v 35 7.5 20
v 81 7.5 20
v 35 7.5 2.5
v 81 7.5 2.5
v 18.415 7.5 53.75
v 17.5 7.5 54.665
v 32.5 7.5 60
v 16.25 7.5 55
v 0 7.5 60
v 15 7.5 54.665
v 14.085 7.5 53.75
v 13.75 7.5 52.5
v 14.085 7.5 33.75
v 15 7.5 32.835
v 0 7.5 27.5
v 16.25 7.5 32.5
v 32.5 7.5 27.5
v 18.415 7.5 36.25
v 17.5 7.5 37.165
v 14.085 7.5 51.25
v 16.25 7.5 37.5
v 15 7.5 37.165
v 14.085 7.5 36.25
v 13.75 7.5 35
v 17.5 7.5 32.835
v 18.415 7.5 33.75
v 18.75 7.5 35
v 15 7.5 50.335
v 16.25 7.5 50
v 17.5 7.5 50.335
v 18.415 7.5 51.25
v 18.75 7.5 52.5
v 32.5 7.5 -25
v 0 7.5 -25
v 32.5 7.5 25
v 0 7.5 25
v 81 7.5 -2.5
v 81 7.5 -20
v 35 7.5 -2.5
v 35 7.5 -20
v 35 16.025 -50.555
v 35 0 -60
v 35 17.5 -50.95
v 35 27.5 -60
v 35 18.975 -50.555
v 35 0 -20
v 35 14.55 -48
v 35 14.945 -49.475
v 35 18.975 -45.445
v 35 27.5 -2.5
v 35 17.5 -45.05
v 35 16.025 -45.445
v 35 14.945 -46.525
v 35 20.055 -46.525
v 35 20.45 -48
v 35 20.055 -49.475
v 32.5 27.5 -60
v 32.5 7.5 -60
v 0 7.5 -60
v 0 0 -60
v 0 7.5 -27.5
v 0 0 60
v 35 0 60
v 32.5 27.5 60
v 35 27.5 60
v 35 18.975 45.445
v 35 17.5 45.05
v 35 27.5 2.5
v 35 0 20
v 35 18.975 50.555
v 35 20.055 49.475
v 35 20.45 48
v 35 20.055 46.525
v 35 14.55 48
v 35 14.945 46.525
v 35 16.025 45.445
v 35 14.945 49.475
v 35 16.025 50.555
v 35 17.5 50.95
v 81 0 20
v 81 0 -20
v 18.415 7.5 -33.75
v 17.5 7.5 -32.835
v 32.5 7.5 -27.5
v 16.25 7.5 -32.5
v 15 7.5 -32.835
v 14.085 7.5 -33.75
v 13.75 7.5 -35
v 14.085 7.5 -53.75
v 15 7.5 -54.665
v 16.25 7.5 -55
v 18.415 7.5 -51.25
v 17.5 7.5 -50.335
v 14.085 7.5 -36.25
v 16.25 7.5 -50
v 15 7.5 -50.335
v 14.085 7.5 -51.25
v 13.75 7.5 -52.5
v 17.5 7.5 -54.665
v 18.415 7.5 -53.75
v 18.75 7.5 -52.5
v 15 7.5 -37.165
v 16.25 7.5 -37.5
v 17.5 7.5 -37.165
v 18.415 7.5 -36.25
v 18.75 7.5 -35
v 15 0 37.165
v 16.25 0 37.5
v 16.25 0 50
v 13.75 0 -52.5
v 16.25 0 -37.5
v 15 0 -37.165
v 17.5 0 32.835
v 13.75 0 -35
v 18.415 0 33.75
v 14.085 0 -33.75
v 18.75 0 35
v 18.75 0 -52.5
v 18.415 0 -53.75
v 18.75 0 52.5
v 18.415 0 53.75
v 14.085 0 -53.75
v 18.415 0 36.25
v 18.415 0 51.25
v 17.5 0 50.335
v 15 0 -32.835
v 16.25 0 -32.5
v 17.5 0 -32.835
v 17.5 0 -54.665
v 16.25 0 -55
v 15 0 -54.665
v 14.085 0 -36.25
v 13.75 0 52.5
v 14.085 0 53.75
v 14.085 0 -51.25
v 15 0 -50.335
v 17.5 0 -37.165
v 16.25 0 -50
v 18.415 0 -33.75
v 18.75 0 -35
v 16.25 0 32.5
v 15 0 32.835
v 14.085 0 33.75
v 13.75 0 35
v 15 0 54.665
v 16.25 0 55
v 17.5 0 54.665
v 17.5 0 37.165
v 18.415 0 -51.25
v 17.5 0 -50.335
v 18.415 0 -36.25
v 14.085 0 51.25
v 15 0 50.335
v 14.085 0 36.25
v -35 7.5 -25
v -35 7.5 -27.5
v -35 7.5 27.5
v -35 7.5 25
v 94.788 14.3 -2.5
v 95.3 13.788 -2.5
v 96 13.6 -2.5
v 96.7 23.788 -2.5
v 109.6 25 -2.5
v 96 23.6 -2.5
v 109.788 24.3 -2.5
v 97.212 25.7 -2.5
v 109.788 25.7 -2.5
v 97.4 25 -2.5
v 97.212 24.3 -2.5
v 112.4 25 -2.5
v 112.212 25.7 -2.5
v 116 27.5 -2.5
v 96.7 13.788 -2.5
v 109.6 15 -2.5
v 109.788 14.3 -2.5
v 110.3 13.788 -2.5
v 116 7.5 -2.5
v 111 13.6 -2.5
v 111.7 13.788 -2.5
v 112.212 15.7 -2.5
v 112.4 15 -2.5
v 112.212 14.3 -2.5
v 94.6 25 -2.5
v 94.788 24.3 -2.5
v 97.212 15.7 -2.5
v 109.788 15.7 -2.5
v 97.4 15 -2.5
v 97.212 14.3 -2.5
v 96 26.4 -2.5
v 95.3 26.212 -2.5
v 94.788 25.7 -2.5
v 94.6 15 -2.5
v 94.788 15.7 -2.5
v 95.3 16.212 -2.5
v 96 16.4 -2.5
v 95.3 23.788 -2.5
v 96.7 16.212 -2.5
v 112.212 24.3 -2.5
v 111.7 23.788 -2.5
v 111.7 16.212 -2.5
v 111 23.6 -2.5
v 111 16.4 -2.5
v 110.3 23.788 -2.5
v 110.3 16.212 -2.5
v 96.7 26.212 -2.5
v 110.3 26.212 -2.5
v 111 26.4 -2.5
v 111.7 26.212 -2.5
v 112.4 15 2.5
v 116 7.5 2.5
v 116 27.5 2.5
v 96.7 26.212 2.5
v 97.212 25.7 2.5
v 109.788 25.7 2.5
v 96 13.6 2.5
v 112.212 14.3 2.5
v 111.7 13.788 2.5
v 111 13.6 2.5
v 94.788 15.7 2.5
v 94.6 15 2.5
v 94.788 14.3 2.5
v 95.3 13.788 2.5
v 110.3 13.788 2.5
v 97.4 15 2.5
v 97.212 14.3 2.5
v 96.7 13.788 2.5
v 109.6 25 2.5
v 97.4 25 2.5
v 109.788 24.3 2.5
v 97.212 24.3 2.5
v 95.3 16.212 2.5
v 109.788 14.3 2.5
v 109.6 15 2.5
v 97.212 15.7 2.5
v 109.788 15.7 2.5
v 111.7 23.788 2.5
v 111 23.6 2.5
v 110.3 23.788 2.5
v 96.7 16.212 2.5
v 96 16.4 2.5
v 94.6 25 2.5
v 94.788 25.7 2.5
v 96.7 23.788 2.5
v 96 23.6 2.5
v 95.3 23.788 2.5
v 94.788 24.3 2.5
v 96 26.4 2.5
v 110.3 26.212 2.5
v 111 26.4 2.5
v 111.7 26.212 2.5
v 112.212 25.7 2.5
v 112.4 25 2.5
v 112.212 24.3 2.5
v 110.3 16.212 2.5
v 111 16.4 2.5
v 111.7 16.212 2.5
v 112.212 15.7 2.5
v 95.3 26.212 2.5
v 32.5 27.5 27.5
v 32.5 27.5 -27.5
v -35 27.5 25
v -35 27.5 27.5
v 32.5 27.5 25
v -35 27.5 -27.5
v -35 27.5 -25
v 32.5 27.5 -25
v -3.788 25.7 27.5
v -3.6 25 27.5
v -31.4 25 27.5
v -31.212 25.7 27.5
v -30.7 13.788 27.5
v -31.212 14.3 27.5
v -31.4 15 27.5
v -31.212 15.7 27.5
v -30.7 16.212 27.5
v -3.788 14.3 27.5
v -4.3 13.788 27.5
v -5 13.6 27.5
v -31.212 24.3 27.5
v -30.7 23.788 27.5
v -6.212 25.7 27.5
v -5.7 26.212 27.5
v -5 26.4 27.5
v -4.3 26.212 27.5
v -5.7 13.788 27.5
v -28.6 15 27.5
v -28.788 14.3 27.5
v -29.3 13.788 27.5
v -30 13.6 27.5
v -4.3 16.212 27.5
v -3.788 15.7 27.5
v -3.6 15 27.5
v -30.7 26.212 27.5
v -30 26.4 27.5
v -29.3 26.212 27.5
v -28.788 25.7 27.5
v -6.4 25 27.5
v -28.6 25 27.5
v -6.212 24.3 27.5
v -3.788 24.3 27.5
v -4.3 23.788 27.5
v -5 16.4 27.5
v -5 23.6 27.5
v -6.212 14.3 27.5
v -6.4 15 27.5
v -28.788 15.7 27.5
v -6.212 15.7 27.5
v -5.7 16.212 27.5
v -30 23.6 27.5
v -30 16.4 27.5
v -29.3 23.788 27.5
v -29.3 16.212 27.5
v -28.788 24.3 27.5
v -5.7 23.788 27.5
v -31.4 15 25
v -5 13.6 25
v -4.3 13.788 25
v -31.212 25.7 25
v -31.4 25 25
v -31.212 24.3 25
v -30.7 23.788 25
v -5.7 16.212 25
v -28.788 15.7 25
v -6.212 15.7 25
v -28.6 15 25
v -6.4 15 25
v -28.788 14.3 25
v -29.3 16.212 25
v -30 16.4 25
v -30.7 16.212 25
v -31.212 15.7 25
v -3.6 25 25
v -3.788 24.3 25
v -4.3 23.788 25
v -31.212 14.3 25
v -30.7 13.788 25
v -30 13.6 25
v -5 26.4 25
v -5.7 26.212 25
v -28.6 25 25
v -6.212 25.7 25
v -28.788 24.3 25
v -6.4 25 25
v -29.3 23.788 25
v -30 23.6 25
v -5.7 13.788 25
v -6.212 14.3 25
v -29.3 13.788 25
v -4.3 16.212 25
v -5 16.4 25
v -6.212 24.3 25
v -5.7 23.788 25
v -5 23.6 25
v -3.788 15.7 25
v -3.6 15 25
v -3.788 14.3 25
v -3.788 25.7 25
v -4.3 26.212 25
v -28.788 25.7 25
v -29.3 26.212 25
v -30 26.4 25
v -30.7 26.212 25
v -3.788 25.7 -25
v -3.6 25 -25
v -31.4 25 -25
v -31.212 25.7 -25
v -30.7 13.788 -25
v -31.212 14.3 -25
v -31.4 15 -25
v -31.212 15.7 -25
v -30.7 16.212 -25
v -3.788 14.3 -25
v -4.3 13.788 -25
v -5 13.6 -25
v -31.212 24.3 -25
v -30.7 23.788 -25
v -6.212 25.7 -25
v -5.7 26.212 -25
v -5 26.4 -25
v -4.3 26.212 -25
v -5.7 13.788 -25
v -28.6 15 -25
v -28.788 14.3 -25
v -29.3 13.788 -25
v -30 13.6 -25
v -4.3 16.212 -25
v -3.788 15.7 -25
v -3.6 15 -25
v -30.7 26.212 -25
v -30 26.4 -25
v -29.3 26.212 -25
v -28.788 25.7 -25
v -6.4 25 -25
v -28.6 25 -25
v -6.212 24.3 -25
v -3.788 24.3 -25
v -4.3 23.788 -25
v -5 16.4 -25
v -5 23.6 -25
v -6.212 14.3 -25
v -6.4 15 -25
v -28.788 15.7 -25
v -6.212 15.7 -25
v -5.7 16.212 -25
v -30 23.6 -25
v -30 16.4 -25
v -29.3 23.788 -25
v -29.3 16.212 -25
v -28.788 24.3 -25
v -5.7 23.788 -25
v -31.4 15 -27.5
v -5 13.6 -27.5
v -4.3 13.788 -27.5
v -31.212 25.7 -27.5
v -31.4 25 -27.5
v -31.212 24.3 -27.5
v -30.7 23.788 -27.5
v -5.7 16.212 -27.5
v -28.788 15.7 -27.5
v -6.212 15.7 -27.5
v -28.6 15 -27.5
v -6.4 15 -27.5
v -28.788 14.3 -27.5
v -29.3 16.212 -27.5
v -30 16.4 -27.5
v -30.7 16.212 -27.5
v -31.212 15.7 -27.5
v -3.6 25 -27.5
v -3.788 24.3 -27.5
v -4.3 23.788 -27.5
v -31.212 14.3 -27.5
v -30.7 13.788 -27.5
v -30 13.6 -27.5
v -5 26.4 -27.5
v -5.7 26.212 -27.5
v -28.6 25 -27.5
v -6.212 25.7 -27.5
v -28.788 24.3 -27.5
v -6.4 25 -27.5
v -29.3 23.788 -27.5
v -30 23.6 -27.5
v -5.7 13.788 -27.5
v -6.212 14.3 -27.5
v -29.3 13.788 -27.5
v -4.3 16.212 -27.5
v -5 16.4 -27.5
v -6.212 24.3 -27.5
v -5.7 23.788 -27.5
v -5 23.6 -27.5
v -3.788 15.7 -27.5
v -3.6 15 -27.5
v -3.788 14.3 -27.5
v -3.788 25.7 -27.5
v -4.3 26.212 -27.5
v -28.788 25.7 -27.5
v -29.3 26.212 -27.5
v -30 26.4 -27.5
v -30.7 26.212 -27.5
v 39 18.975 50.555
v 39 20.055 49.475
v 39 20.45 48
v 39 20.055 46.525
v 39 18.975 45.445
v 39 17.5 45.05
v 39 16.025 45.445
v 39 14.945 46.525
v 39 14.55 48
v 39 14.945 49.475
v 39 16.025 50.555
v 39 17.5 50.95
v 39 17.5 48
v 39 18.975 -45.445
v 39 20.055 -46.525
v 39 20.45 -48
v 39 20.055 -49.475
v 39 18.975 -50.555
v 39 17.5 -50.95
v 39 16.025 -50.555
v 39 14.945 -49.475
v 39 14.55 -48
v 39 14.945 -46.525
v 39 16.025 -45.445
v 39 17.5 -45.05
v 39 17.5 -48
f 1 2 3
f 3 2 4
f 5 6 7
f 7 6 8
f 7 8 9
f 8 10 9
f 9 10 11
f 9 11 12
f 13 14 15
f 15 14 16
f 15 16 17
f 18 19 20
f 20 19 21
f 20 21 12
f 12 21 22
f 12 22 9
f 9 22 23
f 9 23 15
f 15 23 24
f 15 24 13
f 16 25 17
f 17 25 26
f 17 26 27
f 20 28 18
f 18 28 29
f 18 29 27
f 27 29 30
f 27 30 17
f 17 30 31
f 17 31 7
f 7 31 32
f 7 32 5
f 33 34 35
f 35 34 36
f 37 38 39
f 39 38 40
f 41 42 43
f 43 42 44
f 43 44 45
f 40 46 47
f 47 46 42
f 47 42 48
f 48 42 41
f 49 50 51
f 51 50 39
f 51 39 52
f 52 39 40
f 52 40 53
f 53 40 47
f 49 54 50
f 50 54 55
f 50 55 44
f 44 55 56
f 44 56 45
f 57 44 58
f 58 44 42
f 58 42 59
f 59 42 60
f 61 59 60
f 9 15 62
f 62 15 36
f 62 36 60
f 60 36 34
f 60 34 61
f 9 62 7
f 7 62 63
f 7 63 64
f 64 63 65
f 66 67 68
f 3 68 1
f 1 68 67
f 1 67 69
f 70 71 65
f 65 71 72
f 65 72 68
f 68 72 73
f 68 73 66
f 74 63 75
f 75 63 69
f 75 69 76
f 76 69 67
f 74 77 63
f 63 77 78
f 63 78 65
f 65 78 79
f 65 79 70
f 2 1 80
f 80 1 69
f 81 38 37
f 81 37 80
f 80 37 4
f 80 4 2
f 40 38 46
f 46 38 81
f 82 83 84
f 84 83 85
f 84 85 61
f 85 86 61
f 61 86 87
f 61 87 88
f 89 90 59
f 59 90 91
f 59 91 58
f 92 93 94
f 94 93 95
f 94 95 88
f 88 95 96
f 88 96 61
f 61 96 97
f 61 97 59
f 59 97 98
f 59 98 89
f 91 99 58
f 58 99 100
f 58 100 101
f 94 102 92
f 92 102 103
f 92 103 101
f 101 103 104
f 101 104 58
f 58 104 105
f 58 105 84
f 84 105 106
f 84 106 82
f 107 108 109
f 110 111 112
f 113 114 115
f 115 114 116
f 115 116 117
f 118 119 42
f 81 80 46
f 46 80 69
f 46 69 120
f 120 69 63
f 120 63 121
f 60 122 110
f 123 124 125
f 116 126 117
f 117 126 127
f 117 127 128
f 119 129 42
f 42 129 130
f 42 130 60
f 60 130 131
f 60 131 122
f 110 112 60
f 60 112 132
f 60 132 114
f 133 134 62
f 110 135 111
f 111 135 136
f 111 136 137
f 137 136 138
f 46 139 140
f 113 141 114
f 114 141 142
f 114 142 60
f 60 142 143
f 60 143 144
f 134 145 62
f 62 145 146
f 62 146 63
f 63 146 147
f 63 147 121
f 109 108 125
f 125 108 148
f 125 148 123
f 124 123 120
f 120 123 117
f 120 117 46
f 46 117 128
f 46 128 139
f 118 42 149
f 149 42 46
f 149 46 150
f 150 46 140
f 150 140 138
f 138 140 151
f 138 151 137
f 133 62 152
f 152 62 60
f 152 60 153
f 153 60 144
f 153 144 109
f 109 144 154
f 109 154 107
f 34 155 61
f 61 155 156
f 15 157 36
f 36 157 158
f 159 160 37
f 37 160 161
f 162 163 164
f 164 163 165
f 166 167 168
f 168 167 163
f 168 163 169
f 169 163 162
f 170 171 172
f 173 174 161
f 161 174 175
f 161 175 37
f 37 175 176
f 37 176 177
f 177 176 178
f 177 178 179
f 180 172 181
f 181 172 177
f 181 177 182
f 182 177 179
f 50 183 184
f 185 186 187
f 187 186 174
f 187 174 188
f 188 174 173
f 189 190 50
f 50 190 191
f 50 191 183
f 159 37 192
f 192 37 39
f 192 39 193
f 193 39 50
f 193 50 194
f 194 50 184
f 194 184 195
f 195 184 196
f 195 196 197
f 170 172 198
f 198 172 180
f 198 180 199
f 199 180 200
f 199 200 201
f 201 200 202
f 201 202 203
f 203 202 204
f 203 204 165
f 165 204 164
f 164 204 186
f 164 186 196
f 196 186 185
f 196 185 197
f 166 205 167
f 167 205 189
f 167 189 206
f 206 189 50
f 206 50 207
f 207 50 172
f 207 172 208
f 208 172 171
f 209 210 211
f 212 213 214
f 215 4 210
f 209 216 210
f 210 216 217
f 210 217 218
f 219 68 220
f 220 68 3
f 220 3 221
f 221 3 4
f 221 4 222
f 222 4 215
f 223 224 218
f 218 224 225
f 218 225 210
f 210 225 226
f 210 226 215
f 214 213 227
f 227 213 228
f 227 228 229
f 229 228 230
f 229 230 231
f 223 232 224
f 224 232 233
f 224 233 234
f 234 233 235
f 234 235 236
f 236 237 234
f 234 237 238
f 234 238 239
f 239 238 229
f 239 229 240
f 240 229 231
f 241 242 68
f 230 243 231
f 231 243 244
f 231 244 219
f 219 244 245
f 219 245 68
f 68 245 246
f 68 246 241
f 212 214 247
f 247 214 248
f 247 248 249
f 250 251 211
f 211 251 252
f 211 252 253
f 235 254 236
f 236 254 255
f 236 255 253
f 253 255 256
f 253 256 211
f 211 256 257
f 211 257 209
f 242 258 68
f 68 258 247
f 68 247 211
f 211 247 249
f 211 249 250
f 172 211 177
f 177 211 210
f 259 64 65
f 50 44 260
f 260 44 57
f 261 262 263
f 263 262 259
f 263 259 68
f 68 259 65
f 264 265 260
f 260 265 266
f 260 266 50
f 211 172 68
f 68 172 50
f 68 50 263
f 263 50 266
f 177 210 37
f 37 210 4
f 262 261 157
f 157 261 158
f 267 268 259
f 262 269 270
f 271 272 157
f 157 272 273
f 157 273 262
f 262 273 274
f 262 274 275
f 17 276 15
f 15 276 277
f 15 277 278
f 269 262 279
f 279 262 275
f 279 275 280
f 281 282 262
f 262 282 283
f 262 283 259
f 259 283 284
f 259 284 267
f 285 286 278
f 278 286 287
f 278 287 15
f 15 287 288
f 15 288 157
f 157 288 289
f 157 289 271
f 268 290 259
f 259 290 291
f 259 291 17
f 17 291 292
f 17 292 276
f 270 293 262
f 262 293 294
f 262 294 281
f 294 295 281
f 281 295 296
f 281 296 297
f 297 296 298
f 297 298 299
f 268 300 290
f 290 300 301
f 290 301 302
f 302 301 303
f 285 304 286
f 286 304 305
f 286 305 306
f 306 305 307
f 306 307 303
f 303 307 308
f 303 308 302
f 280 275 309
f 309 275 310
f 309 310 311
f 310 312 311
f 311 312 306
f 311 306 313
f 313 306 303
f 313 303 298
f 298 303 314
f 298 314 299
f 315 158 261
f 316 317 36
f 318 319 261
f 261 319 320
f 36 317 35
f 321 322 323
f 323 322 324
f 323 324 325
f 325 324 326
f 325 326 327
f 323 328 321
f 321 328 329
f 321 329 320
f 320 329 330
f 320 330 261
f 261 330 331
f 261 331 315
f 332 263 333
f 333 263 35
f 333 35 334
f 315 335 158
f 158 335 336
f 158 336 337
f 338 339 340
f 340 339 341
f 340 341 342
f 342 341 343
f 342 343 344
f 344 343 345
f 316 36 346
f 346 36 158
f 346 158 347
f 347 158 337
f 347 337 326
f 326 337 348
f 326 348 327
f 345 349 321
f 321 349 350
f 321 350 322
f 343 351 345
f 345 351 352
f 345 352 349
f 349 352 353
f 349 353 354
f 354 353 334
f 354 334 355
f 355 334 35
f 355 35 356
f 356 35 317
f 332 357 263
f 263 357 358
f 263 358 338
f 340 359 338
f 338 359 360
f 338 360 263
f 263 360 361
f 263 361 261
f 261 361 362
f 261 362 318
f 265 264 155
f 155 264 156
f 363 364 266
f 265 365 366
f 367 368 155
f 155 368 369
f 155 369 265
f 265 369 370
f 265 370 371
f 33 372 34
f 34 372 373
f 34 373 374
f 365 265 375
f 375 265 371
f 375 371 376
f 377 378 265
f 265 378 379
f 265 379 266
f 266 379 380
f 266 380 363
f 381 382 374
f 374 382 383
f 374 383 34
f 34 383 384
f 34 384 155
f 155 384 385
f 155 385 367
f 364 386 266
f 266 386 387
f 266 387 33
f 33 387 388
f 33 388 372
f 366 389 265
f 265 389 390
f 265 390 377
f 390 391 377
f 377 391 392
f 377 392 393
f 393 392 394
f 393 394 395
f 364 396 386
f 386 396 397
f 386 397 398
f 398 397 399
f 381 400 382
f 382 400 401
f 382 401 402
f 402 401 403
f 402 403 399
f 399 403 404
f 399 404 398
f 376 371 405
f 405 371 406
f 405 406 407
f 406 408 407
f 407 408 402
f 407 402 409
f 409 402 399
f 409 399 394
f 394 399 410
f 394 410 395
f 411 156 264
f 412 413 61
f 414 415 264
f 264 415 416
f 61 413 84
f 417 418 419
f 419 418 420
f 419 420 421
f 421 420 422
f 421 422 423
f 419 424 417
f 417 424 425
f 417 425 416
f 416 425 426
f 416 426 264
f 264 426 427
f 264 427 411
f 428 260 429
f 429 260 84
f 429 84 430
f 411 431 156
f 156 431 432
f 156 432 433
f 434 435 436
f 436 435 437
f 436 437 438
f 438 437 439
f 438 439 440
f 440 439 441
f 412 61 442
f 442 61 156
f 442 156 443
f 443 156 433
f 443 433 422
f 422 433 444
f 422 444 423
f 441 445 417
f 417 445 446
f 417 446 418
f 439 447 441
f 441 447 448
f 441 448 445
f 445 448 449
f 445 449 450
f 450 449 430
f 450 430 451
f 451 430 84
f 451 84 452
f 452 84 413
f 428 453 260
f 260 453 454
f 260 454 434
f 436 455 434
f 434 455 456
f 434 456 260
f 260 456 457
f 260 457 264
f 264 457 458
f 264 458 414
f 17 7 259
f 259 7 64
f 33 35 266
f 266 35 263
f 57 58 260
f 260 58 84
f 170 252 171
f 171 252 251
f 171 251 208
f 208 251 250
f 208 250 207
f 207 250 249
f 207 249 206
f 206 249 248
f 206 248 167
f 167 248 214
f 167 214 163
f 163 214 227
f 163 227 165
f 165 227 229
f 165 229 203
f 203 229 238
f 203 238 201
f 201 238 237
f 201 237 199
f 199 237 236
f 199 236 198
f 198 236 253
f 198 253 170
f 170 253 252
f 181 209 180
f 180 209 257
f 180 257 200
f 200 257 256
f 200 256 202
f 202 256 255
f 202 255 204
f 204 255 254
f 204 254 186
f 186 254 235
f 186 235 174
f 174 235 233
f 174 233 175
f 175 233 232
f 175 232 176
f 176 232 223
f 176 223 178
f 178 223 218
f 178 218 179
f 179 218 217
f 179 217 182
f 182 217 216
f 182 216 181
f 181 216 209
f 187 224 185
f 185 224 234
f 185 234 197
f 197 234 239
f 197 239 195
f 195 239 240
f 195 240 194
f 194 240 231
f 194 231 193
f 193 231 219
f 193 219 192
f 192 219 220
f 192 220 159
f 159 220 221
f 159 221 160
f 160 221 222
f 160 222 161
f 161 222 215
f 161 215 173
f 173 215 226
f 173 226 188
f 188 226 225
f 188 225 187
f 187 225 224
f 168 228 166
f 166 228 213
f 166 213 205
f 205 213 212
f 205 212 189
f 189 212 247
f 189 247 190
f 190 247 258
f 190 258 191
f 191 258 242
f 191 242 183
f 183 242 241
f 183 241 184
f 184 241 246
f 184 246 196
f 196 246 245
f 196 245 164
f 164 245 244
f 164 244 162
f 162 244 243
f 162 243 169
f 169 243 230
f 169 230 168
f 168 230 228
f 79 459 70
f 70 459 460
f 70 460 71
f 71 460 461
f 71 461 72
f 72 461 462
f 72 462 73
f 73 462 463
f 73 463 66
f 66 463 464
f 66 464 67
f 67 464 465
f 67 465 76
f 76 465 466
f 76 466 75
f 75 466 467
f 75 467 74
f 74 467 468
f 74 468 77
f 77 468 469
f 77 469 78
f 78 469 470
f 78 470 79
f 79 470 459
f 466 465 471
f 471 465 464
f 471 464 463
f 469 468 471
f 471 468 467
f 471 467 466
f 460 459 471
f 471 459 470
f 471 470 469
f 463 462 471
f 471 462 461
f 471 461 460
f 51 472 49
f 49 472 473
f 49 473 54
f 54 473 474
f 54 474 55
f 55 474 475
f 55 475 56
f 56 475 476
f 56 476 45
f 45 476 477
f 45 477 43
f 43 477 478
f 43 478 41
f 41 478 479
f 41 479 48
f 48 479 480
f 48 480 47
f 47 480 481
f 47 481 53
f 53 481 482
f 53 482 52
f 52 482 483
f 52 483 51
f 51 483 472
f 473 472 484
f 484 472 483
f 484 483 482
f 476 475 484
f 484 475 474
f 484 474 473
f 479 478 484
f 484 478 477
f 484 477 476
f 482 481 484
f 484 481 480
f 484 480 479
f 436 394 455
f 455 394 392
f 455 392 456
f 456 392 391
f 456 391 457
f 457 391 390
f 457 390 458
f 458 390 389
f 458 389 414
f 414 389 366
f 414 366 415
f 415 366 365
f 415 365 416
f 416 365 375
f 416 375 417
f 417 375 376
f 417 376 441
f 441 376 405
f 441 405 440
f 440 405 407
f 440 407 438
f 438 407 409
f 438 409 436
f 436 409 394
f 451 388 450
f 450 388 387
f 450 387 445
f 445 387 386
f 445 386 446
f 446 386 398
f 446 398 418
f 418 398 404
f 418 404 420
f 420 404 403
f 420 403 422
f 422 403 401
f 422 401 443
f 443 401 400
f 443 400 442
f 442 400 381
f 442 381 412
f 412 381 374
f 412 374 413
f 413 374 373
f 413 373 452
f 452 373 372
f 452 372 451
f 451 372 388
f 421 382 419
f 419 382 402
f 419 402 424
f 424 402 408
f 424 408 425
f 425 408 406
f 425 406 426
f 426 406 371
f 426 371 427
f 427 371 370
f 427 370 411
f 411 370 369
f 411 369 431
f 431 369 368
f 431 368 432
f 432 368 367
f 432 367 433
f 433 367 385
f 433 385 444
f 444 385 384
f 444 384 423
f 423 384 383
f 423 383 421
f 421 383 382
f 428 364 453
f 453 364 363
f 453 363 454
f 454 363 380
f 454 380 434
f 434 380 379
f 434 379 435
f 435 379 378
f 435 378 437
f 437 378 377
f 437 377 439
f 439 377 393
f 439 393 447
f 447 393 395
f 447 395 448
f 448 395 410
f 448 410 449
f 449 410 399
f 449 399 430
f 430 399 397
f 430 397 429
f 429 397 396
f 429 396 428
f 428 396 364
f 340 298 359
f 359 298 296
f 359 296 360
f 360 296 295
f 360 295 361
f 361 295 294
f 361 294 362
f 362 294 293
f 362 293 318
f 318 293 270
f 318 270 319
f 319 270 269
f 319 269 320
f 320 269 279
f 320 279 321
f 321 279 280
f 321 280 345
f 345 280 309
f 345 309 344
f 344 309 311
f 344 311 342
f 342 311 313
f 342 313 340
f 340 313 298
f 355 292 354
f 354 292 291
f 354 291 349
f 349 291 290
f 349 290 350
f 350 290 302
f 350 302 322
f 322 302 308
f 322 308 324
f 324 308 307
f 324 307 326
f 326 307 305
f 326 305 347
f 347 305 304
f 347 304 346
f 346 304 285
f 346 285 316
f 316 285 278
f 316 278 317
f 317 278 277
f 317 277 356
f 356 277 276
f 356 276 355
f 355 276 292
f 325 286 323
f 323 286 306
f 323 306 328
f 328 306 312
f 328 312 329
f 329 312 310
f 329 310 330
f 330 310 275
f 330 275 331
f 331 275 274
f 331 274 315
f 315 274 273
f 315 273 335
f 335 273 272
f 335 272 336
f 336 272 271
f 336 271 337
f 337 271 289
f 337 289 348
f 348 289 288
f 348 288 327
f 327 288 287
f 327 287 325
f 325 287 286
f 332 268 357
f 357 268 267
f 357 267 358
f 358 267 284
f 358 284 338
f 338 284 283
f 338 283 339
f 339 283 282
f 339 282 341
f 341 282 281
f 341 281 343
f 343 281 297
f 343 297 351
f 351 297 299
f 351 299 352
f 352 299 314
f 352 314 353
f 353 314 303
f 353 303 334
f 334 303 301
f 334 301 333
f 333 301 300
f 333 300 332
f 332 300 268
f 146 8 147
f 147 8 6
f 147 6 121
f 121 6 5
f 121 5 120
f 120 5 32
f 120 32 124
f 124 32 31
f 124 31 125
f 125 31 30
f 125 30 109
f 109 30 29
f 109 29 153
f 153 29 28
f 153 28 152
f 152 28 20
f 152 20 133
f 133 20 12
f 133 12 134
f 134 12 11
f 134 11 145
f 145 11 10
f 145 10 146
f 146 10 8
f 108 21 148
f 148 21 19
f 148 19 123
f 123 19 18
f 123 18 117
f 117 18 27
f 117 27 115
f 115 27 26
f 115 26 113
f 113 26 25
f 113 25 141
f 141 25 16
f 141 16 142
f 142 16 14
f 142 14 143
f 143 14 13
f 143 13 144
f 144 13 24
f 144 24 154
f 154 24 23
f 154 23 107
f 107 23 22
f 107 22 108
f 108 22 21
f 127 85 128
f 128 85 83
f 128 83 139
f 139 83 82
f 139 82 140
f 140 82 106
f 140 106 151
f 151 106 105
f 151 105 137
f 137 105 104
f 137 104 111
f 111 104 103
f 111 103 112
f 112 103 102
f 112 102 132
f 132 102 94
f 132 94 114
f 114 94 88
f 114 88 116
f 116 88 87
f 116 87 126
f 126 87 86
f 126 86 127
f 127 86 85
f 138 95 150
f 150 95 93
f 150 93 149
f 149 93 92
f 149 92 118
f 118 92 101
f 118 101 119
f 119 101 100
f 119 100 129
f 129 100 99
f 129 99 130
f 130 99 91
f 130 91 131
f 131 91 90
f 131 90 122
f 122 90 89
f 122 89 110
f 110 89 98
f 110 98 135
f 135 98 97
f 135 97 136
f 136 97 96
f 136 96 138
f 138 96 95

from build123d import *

# Parameters (mm, degrees)
SKETCH1_W           = 35
SKETCH1_H           = 120
SKETCH1_W_2         = 46
SKETCH1_H_2         = 40
BOSS_EXTRUDE1_DEPTH = 7.5
BOSS_EXTRUDE2_DEPTH = 20
SKETCH3_R           = 1.4
CUT_EXTRUDE1_DEPTH  = 5
SKETCH5_R           = 2.95
BOSS_EXTRUDE4_DEPTH = 4
SKETCH6_R           = 1.4
CUT_EXTRUDE2_DEPTH  = 60
SKETCH7_R           = 2.5
CUT_EXTRUDE3_DEPTH  = 10


with BuildPart() as part:
    # Sketch1 → Boss-Extrude1 (new body)
    with BuildSketch(Plane(origin=(0, 0, 0), x_dir=(1, 0, 0), z_dir=(0, 1, 0))):
        with Locations((17.5, 0)):
            Rectangle(SKETCH1_W, SKETCH1_H)
        with Locations((58, 0)):
            Rectangle(SKETCH1_W_2, SKETCH1_H_2)
    extrude(amount=BOSS_EXTRUDE1_DEPTH)

    # Sketch2 → Boss-Extrude2 (add)
    with BuildSketch(Plane(origin=(0, 7.5, 0), x_dir=(1, 0, 0), z_dir=(0, 1, 0))):
        Polygon((35, 2.5), (35, 60), (32.5, 60), (32.5, 27.5), (-35, 27.5), (-35, 25), (32.5, 25), (32.5, -25), (-35, -25), (-35, -27.5), (32.5, -27.5), (32.5, -60), (35, -60), (35, -2.5), (116, -2.5), (116, 2.5), align=None)
    extrude(amount=BOSS_EXTRUDE2_DEPTH)

    # Sketch3 → Cut-Extrude1 (cut)
    with BuildSketch(Plane.XY.offset(2.5)):
        with Locations((111, 25)):
            Circle(SKETCH3_R)
        with Locations((111, 15)):
            Circle(SKETCH3_R)
        with Locations((96, 15)):
            Circle(SKETCH3_R)
        with Locations((96, 25)):
            Circle(SKETCH3_R)
    extrude(amount=-CUT_EXTRUDE1_DEPTH, mode=Mode.SUBTRACT)

    # Sketch5 → Boss-Extrude4 (add)
    with BuildSketch(Plane(origin=(35, 0, 0), x_dir=(0, 0, -1), z_dir=(1, 0, 0))):
        with Locations((-48, 17.5)):
            Circle(SKETCH5_R)
        with Locations(Location((48, 17.5, 0), (0, 0, 180))):
            Circle(SKETCH5_R)
    extrude(amount=BOSS_EXTRUDE4_DEPTH)

    # Sketch6 → Cut-Extrude2 (cut)
    with BuildSketch(Plane.XY.offset(27.5)):
        with Locations((-30, 25)):
            Circle(SKETCH6_R)
        with Locations((-5, 25)):
            Circle(SKETCH6_R)
        with Locations((-30, 15)):
            Circle(SKETCH6_R)
        with Locations((-5, 15)):
            Circle(SKETCH6_R)
    extrude(amount=-CUT_EXTRUDE2_DEPTH, mode=Mode.SUBTRACT)

    # Sketch7 → Cut-Extrude3 (cut)
    with BuildSketch(Plane(origin=(0, 7.5, 0), x_dir=(1, 0, 0), z_dir=(0, 1, 0))):
        with Locations(Location((16.25, 52.5, 0), (0, 0, 270))):
            Circle(SKETCH7_R)
        with Locations(Location((16.25, 35, 0), (0, 0, 270))):
            Circle(SKETCH7_R)
        with Locations(Location((16.25, -35, 0), (0, 0, 270))):
            Circle(SKETCH7_R)
        with Locations(Location((16.25, -52.5, 0), (0, 0, 270))):
            Circle(SKETCH7_R)
    extrude(amount=-CUT_EXTRUDE3_DEPTH, mode=Mode.SUBTRACT)


solid = part.part
